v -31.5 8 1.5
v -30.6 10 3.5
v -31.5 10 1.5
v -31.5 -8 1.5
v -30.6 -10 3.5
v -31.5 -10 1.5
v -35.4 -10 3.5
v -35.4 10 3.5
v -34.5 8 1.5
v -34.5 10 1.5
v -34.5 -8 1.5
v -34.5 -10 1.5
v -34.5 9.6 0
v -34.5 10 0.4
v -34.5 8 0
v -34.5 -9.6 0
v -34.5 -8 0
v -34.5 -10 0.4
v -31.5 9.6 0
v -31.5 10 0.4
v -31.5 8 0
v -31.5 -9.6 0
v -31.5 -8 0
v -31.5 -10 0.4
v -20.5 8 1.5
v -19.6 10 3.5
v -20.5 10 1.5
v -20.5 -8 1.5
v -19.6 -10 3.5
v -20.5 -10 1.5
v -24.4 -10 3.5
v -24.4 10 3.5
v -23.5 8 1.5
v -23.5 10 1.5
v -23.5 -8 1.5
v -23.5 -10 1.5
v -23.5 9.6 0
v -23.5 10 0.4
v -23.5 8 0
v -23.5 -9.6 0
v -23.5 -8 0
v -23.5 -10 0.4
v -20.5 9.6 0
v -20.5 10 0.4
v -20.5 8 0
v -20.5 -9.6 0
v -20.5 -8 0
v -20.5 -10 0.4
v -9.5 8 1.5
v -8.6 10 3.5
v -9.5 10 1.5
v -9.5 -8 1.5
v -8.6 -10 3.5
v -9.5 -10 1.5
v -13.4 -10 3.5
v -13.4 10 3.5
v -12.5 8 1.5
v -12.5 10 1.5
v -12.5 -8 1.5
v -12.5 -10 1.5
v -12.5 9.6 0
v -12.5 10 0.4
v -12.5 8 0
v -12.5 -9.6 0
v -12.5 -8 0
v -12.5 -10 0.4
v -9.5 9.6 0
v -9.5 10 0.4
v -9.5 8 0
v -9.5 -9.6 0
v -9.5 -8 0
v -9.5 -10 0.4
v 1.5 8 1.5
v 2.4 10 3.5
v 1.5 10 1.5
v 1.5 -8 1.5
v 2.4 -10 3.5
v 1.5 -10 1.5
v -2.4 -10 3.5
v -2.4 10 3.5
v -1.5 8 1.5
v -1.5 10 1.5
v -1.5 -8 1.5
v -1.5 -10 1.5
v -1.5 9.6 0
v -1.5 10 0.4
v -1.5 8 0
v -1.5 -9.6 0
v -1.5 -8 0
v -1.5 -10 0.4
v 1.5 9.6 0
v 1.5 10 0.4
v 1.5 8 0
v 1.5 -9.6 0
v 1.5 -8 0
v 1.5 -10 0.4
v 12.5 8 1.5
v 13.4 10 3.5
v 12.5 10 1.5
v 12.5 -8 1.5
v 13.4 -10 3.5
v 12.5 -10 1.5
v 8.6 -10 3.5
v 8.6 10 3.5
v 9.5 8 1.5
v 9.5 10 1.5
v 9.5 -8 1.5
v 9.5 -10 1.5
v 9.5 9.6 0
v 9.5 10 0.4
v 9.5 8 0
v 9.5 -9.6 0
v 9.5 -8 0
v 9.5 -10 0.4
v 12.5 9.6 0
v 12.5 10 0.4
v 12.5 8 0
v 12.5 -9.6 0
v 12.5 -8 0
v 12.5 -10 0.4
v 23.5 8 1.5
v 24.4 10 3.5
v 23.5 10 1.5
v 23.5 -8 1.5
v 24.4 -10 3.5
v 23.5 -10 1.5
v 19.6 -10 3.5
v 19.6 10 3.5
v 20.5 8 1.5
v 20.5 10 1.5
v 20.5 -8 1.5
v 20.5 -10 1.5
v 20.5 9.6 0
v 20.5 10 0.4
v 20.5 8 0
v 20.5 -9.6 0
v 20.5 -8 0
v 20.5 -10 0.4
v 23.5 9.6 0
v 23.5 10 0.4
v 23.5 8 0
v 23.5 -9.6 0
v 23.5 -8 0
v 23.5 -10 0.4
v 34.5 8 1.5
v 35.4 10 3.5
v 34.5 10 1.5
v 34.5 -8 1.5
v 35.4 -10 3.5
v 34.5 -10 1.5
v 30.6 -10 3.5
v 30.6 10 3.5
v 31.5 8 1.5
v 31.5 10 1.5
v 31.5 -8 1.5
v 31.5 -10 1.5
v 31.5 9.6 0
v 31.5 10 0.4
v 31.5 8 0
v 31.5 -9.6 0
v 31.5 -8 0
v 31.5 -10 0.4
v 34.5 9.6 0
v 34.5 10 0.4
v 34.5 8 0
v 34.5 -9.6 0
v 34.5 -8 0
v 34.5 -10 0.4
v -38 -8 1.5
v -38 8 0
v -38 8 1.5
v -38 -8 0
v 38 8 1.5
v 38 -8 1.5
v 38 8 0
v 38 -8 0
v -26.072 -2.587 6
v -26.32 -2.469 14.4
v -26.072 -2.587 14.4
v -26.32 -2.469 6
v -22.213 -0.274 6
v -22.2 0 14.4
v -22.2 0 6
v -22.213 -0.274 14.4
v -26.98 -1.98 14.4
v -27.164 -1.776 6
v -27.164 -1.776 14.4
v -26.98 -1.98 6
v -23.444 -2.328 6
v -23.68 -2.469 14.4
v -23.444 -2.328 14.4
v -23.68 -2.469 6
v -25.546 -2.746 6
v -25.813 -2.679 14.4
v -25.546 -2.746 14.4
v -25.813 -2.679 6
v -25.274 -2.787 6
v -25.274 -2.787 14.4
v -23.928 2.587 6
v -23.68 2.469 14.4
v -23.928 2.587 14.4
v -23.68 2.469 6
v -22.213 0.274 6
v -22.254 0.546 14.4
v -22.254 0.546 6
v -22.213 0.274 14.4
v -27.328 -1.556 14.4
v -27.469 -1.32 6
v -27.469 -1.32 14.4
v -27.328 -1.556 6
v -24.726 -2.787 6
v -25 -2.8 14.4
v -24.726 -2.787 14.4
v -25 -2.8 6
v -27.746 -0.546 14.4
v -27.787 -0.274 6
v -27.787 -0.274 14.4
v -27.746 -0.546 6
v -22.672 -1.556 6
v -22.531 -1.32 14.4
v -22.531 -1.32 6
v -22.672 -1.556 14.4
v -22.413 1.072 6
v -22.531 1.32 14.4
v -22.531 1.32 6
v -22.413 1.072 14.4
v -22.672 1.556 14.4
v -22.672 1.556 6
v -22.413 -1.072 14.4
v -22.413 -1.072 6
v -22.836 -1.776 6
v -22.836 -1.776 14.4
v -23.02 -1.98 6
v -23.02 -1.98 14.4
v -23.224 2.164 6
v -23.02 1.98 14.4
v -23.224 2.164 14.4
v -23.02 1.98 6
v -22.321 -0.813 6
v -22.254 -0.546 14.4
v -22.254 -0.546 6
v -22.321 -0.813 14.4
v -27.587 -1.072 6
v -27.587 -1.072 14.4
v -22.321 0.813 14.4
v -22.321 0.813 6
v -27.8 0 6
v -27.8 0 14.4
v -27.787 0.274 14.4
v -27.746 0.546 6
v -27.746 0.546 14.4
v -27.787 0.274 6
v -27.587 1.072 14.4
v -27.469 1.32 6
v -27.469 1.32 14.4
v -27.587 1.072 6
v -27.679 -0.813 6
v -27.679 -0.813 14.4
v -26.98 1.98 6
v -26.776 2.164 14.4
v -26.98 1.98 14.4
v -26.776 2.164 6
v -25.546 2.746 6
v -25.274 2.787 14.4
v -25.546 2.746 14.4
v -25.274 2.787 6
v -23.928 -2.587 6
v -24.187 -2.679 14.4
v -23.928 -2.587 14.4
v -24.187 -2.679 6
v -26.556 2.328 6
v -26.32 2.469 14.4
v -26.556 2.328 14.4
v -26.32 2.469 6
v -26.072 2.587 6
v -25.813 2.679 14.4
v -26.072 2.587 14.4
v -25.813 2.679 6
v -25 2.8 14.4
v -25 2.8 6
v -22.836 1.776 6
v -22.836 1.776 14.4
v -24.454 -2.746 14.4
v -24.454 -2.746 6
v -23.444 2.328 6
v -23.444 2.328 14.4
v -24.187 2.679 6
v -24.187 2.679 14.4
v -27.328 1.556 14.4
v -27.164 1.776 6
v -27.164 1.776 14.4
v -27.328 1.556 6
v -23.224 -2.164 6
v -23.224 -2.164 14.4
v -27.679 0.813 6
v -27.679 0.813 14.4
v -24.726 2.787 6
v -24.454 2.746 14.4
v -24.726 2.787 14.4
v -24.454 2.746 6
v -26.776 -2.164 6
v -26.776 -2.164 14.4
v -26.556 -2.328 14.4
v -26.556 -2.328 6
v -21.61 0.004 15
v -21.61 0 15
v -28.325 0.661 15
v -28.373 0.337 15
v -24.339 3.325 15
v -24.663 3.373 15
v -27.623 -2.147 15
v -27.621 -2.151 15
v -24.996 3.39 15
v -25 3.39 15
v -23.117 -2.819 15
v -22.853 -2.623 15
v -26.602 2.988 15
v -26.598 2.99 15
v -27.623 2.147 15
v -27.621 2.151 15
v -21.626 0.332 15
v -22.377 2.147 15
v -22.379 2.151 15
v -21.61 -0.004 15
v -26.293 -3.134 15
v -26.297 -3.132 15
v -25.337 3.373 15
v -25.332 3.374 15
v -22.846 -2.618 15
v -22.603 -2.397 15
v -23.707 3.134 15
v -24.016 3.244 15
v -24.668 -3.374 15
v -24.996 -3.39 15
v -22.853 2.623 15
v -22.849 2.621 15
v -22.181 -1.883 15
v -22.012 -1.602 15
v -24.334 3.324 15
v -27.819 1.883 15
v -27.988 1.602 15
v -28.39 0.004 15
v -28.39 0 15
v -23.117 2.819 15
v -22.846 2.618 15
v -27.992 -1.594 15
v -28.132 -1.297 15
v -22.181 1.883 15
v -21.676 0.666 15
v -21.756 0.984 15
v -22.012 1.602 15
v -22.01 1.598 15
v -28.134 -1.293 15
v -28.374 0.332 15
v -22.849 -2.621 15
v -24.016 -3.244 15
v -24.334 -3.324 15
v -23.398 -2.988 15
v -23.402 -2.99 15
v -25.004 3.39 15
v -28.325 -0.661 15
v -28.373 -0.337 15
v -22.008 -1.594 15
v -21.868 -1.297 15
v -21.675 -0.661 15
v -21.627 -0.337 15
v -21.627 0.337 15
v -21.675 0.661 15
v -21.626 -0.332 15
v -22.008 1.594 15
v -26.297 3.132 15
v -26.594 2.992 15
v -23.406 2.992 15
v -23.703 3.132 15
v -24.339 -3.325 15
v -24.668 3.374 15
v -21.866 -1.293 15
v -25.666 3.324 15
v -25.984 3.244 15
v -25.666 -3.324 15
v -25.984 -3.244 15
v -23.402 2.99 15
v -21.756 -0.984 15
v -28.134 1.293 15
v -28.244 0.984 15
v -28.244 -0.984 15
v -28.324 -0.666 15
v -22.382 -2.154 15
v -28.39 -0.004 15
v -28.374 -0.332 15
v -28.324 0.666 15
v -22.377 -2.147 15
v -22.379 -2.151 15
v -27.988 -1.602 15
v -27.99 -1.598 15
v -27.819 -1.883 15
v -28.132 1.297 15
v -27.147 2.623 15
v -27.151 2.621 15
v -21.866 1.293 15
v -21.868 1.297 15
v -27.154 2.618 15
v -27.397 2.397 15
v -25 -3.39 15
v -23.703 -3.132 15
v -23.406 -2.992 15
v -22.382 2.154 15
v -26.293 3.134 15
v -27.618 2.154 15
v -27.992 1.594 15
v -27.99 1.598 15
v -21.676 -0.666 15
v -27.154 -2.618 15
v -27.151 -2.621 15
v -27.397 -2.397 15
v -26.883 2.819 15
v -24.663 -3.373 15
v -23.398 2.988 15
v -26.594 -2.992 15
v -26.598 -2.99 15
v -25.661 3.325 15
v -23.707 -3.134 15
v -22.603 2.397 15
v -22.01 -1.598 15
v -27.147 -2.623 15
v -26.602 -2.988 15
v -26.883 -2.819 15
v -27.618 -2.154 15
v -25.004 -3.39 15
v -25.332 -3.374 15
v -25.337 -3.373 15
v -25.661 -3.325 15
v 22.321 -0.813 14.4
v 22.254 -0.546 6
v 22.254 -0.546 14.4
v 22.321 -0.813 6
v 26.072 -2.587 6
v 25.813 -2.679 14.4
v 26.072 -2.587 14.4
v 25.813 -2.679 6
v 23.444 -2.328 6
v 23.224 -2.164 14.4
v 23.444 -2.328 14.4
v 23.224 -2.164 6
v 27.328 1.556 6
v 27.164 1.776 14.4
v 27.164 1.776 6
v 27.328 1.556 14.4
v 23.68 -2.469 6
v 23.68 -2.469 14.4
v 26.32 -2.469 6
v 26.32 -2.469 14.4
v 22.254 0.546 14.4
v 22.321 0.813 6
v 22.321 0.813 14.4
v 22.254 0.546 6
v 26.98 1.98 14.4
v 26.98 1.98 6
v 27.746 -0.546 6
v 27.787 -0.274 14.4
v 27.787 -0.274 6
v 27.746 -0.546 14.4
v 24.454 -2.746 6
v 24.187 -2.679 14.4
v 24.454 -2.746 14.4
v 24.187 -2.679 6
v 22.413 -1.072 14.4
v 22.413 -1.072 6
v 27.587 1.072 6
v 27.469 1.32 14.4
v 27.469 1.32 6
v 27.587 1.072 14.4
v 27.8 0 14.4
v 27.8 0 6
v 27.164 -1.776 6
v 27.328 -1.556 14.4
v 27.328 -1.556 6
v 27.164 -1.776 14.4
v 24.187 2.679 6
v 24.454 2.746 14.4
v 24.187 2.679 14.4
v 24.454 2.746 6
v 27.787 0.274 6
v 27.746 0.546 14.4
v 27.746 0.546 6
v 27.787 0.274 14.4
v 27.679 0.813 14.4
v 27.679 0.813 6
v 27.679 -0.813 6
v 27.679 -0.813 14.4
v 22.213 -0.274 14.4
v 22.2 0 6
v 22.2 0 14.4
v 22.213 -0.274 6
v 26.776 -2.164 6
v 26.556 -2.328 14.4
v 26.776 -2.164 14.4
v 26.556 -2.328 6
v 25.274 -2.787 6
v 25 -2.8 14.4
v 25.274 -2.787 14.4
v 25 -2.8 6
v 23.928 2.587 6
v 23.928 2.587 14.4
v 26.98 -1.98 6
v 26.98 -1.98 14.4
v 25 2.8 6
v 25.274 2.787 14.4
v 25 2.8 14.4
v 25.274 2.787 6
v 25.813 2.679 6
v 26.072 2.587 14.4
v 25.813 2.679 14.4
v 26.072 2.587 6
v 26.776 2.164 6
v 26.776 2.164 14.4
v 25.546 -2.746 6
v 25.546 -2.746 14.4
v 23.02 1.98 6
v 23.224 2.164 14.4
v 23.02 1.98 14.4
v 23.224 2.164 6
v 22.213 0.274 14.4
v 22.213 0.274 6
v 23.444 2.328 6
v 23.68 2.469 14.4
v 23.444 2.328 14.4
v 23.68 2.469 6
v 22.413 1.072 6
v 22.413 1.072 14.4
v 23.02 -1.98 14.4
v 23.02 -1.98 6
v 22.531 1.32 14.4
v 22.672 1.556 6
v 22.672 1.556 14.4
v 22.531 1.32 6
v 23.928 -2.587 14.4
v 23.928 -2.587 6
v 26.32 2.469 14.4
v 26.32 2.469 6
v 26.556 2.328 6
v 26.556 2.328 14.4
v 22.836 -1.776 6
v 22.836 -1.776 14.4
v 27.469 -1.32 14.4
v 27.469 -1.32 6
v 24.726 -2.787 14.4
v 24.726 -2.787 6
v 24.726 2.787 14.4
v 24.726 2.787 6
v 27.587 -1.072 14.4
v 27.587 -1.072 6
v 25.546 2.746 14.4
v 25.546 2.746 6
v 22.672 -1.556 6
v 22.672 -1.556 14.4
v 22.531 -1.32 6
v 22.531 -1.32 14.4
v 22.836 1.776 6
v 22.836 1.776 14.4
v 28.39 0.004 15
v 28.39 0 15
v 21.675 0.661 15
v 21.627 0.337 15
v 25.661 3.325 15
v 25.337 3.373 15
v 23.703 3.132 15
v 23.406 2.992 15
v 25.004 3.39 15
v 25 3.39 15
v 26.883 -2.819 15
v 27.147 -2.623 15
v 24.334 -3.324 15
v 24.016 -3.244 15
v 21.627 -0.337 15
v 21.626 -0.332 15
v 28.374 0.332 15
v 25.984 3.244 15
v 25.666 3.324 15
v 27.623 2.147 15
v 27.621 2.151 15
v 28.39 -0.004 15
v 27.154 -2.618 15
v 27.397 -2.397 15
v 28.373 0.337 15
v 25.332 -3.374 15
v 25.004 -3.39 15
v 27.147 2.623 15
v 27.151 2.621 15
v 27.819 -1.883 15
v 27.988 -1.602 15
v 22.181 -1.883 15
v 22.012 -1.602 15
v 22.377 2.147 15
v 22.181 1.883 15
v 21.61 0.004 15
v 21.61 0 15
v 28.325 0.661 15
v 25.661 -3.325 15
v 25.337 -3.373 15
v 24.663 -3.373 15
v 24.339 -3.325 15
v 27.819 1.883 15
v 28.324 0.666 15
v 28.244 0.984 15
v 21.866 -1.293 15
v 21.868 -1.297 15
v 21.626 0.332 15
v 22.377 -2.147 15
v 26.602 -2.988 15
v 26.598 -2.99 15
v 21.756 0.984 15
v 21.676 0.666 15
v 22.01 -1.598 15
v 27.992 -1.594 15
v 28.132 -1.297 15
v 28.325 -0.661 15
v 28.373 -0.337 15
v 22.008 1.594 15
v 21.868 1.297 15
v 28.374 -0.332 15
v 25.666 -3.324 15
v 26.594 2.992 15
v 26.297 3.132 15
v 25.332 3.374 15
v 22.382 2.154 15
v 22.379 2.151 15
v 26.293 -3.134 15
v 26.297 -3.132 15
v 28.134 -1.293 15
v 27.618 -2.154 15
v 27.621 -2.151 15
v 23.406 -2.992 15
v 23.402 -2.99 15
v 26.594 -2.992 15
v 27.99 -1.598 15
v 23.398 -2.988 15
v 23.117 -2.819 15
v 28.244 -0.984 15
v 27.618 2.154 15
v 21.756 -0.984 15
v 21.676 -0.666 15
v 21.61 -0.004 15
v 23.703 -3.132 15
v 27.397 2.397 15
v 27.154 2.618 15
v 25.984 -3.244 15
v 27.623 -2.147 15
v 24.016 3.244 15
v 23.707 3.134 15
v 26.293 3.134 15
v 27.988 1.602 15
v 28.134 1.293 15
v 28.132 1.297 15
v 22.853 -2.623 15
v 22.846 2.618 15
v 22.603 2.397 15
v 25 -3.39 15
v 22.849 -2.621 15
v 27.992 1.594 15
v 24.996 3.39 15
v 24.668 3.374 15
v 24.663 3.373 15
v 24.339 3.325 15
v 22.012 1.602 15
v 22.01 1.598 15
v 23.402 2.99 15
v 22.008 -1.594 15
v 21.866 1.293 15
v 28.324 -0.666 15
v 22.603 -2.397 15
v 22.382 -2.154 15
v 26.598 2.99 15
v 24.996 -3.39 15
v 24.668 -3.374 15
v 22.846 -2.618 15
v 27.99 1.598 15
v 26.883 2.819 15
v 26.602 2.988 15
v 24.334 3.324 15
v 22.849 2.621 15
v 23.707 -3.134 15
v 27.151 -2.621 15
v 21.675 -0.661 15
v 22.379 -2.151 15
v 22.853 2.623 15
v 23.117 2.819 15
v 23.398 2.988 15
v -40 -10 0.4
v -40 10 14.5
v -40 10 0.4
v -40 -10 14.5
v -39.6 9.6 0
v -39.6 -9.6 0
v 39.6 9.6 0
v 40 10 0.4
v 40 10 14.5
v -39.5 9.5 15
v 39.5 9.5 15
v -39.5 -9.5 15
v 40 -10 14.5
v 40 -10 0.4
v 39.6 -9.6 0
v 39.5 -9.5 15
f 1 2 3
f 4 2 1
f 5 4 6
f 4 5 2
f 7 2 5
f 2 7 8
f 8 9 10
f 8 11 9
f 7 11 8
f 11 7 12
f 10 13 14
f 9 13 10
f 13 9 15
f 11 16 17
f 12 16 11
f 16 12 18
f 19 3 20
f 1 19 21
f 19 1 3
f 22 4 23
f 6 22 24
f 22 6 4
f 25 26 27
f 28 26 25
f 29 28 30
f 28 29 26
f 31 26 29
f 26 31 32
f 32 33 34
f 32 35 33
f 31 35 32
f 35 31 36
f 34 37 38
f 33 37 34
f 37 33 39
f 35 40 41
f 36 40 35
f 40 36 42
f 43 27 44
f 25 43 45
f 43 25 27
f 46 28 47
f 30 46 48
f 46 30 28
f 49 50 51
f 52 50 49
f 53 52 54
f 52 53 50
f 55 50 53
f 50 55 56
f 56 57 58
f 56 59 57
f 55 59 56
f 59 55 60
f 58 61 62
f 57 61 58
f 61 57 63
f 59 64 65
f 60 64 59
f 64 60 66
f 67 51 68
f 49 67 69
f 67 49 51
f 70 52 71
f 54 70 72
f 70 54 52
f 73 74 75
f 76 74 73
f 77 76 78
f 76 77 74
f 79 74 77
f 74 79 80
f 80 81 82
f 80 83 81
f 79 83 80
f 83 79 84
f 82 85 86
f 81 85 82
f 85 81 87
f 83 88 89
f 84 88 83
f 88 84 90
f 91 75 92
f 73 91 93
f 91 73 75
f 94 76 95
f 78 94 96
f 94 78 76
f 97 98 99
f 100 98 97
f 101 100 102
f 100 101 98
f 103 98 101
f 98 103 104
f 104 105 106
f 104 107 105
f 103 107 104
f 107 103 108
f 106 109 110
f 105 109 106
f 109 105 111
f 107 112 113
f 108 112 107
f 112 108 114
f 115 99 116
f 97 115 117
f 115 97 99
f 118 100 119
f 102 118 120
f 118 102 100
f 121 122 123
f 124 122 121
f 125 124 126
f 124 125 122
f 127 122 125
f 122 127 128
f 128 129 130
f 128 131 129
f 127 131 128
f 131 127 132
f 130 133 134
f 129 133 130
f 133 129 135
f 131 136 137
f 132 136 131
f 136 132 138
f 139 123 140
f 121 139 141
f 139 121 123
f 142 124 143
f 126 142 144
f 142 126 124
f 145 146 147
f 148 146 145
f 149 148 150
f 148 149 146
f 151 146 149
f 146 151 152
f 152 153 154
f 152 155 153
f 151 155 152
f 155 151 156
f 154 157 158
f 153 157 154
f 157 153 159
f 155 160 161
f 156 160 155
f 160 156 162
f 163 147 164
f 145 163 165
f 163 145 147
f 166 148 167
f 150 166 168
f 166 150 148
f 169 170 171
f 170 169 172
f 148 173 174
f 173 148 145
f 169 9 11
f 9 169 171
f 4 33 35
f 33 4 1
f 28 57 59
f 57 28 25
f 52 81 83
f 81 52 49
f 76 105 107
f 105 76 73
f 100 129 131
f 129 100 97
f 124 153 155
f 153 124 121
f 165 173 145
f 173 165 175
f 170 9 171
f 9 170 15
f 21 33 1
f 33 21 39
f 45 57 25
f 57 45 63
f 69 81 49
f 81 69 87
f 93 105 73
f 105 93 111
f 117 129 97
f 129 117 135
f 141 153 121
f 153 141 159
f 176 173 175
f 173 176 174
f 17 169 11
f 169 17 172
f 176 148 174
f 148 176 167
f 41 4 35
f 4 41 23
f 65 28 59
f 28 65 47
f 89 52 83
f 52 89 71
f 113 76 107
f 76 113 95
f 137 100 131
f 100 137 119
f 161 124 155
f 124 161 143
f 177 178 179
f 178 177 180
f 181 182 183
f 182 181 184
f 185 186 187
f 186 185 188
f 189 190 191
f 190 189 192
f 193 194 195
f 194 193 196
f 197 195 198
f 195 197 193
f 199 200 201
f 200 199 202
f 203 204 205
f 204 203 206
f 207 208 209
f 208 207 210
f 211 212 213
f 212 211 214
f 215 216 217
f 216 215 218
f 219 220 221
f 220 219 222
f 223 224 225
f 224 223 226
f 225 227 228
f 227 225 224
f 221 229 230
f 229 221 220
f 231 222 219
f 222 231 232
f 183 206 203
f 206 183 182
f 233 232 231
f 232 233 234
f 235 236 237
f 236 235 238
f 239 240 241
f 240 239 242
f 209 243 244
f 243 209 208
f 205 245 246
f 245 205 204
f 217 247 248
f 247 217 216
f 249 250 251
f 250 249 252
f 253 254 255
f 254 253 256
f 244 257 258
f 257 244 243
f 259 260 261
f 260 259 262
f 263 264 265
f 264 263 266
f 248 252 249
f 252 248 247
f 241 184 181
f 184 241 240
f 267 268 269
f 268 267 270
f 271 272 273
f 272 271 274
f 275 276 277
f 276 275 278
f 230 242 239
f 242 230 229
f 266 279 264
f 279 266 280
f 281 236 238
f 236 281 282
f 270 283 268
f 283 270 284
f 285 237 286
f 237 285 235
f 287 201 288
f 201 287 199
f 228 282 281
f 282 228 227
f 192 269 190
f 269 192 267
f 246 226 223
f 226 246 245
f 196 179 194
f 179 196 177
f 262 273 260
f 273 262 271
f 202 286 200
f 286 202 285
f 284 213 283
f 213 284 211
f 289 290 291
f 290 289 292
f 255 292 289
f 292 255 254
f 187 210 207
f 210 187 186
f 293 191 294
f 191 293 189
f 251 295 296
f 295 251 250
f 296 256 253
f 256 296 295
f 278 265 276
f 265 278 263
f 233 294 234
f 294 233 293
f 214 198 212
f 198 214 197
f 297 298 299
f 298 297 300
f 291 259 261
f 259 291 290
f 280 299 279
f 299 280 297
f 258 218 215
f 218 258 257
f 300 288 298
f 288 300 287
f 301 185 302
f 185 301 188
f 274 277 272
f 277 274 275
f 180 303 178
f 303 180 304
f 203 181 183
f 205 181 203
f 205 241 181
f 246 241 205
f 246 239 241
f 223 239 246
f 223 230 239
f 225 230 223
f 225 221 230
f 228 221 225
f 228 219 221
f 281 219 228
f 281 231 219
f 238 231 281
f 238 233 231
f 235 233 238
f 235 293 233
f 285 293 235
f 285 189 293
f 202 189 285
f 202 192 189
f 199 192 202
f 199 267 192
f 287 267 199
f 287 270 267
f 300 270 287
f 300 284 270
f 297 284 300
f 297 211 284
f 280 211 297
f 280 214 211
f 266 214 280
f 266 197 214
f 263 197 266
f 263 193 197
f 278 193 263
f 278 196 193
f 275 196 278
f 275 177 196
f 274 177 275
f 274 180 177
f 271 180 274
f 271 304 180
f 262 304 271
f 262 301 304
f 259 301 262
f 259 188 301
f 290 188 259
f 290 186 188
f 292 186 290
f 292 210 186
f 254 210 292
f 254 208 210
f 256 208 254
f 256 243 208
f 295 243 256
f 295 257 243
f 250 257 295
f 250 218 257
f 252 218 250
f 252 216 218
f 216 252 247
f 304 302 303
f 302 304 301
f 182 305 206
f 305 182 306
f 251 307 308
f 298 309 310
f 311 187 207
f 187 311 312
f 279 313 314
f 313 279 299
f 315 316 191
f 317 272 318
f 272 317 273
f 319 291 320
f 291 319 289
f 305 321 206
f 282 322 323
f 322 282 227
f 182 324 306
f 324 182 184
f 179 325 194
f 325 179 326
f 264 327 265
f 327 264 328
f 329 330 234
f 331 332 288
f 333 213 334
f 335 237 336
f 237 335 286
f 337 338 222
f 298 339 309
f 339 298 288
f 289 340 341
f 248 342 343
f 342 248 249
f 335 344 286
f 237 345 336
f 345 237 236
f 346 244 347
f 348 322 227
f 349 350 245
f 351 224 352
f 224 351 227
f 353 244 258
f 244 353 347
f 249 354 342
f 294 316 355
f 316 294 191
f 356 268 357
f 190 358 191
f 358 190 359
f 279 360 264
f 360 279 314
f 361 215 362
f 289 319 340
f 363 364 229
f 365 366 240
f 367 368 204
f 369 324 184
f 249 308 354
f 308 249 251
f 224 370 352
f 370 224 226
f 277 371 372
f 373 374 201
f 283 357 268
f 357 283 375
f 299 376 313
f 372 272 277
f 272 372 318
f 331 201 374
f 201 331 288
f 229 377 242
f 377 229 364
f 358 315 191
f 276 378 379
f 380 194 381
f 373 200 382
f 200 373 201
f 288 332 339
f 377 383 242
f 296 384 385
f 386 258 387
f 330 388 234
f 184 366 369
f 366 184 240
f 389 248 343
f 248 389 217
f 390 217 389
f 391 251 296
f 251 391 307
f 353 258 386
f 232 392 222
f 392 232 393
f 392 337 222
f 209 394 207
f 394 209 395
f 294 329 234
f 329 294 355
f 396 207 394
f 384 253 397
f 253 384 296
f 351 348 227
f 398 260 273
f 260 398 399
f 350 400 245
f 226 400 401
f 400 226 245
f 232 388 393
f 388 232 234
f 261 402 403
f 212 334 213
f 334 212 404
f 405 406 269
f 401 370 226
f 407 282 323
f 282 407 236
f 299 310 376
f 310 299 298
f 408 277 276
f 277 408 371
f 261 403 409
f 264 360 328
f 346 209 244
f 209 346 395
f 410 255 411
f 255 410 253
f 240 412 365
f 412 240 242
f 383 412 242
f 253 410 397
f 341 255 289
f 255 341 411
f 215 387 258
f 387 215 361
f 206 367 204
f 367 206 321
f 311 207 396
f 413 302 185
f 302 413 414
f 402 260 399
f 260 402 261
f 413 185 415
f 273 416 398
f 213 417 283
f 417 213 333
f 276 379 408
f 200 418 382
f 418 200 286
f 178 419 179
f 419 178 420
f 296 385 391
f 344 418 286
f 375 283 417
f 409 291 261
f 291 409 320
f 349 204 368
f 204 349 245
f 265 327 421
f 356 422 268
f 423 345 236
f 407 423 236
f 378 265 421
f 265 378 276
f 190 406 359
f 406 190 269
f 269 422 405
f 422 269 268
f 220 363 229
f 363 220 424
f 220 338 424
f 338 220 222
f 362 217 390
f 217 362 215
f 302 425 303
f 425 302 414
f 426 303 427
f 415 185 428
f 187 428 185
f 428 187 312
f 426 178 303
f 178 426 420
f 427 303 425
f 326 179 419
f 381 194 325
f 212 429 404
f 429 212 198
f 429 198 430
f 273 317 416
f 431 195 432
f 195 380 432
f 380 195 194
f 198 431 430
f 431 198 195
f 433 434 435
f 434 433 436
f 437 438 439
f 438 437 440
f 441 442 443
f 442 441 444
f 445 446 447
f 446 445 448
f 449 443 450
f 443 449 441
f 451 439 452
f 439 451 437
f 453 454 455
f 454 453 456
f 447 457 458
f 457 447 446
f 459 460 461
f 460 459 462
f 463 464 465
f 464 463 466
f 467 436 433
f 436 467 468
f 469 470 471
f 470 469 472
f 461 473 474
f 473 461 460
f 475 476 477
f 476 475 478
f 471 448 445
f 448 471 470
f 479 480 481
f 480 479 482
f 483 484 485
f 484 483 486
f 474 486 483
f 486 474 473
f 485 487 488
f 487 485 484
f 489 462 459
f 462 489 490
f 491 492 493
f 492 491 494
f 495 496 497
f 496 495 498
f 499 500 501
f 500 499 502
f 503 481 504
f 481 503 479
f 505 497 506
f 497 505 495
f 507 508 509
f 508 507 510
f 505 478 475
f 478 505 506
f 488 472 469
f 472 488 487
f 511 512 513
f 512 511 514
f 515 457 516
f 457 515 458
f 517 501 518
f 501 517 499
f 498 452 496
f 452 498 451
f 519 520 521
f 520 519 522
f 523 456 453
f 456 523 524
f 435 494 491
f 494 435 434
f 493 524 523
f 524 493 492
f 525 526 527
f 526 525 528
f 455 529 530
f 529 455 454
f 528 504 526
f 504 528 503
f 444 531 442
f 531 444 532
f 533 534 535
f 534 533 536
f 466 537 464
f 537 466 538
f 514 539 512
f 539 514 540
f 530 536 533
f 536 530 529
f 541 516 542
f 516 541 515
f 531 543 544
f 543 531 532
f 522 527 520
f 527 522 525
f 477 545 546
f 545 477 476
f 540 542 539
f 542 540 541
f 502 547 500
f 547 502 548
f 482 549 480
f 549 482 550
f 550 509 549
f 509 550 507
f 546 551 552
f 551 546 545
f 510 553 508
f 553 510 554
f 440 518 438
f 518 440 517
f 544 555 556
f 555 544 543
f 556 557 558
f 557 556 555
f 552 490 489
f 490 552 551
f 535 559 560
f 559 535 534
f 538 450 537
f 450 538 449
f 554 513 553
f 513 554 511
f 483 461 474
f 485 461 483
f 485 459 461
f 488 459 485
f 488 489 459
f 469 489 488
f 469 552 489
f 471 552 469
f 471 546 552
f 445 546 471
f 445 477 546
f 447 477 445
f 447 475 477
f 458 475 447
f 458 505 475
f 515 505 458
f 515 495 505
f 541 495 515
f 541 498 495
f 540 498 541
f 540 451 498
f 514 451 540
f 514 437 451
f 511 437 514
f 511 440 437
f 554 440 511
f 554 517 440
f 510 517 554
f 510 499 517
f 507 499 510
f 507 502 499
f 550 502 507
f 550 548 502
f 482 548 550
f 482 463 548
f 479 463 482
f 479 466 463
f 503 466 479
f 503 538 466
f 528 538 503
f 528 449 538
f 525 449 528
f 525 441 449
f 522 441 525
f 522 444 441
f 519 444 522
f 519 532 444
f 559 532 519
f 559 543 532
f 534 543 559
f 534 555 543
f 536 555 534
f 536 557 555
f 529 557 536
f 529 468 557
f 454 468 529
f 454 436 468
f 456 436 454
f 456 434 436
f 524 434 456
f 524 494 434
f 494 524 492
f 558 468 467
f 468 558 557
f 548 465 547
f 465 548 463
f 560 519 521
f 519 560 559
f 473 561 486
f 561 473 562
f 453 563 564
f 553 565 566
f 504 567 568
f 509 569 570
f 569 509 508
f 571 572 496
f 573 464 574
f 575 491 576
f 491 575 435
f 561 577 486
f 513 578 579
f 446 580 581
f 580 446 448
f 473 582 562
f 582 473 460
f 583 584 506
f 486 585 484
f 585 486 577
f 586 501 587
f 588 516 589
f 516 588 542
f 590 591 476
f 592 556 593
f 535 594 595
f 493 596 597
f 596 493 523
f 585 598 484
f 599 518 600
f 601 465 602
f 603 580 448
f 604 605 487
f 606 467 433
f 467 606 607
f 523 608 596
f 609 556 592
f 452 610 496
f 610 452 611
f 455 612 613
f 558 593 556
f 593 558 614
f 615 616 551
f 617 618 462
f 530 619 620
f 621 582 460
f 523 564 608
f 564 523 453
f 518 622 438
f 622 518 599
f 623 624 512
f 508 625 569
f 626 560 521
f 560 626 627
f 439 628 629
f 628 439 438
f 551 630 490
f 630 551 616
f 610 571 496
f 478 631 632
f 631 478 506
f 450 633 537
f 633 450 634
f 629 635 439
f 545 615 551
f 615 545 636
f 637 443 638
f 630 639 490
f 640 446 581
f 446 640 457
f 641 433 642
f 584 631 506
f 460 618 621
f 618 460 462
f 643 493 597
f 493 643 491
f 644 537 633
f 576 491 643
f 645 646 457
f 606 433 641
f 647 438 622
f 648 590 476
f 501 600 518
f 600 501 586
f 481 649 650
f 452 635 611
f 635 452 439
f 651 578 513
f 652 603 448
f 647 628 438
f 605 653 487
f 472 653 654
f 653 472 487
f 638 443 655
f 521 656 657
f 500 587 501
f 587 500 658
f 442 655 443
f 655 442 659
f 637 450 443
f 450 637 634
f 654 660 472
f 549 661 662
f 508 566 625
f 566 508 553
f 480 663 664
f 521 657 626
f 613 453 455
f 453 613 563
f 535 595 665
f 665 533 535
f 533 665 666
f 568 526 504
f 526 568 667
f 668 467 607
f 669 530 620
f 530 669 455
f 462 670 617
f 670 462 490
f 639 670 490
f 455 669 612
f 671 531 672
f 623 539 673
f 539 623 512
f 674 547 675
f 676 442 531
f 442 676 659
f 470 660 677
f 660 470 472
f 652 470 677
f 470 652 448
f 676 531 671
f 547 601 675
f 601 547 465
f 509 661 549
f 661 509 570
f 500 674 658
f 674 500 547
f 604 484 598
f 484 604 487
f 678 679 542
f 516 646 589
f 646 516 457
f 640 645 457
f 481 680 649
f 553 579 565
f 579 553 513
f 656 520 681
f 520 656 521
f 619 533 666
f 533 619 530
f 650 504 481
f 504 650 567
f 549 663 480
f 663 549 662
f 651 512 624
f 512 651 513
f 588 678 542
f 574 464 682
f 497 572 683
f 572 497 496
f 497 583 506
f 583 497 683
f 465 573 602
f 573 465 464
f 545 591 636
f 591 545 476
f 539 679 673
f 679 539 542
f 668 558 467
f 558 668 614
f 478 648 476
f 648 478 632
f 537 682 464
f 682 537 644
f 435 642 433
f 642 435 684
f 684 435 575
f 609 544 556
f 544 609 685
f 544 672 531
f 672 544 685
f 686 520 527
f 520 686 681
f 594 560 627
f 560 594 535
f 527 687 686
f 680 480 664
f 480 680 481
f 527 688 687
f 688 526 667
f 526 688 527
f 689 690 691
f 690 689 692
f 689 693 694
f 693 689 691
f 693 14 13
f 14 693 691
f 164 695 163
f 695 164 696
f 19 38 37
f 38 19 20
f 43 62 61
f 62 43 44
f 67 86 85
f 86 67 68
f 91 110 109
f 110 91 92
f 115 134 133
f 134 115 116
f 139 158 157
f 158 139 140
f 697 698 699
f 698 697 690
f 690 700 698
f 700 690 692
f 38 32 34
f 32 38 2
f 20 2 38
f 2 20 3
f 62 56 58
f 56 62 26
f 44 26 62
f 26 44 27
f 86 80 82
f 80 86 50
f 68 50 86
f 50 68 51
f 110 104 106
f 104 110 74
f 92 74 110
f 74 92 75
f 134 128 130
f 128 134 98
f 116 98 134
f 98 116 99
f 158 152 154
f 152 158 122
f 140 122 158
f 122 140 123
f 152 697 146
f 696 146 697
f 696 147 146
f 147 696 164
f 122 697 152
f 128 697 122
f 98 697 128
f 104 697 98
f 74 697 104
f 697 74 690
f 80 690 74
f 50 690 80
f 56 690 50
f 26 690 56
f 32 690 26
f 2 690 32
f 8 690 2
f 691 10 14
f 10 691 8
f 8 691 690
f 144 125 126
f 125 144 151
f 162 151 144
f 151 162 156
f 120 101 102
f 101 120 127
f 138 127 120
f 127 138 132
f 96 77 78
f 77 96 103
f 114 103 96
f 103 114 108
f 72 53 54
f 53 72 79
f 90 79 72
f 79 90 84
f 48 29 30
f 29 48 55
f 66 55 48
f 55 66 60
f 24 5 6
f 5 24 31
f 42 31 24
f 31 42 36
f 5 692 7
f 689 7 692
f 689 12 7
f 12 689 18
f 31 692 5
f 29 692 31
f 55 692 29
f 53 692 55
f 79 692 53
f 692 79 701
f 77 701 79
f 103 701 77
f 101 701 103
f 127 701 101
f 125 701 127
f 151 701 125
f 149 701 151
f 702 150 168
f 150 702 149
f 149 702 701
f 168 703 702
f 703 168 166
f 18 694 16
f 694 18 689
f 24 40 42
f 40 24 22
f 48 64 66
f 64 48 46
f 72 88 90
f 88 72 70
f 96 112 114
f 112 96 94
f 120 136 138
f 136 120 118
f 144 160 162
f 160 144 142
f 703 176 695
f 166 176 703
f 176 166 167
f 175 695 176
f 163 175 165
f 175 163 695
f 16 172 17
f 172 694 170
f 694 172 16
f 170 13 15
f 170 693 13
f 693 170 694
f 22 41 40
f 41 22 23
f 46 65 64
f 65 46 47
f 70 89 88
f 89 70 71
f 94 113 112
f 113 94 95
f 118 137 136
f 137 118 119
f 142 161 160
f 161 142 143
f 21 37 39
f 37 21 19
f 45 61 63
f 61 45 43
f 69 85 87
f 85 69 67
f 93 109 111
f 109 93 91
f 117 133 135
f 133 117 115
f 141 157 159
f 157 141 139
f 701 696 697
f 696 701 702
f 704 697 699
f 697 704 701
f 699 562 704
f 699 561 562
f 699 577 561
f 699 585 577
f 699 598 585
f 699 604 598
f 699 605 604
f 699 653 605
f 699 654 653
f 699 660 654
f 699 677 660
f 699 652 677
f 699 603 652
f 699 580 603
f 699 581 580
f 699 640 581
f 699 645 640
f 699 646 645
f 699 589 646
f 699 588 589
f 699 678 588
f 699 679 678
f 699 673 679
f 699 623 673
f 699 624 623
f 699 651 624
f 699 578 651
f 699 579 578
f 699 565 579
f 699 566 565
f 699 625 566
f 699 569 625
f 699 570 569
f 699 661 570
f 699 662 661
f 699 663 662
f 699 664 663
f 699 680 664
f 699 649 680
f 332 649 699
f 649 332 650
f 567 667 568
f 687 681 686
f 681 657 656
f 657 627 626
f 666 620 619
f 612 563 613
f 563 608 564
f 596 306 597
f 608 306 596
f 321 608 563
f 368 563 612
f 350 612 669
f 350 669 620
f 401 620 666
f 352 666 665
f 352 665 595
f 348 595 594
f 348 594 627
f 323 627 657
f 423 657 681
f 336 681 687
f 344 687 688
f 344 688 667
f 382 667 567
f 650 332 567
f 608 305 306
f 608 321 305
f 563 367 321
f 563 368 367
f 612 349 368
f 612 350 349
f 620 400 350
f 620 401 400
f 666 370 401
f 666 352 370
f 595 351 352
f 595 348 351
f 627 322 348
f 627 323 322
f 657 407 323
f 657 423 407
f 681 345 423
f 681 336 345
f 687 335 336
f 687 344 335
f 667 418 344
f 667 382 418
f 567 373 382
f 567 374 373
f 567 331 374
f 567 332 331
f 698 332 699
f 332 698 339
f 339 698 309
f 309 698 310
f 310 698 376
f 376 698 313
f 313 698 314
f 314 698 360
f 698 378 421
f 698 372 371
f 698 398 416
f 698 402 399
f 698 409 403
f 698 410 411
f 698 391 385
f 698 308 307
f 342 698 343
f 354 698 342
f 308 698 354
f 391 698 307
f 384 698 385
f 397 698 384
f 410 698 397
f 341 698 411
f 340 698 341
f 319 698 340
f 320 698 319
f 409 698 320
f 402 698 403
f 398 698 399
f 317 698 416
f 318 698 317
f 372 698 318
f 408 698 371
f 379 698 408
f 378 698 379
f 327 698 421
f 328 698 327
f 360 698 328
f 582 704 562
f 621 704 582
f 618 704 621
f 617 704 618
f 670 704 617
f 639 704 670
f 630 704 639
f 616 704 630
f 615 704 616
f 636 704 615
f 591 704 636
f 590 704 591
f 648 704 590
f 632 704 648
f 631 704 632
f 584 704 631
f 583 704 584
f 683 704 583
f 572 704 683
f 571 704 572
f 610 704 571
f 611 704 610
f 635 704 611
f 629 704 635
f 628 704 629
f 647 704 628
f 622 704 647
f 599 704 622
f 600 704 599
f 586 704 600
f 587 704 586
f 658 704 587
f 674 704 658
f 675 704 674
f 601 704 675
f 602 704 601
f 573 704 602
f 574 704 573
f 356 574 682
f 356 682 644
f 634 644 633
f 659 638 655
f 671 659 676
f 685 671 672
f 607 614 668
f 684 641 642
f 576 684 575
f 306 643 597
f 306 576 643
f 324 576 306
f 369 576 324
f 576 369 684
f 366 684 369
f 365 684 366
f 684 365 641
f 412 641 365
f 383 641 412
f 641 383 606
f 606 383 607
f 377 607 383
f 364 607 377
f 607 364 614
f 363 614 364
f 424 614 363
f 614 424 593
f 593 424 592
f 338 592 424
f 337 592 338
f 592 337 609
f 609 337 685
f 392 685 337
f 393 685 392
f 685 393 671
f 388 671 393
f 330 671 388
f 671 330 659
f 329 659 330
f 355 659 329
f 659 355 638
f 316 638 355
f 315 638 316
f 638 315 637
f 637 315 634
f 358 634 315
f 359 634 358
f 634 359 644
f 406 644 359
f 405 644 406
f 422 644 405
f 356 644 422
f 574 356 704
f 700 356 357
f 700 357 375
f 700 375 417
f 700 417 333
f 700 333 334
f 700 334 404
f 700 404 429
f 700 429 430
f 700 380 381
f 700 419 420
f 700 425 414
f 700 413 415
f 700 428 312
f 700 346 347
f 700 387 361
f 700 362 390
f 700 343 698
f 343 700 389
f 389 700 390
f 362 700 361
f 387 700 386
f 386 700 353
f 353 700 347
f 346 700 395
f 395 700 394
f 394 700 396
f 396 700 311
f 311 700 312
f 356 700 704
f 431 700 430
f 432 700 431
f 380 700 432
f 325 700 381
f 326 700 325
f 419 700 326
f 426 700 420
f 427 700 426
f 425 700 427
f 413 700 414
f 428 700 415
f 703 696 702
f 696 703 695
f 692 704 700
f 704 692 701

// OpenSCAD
// =====================================================================
//  PU Rail — trilho espacador 80 x 20 x 15, colado com PU
//
//  Fica ENTRE a caixa hermetica e uma chapa de aluminio:
//    face de baixo (z=0) -> colada na caixa com PU, leito de 1,5 mm
//    face de cima        -> parafusada na chapa, M4 em insert de latao
//
//  O principio que manda no desenho: NADA da fixacao pode aparecer na
//  face de cola. O furo do insert e' CEGO, entra pelo topo e para 4,5 mm
//  acima do piso do leito — a face de cola sai inteira e plana.
//
//  E' tambem por isso que aqui nao cabe rebite, que seria o obvio para
//  chapa de aluminio: rebite de repuxo tem que formar o bulbo do OUTRO
//  lado da pilha, e o outro lado e' a junta colada. Fora que ele aperta a
//  pilha inteira, e a pilha inclui 15 mm de plastico que flui no calor.
//
//  Diferente do capuz do SMA, esta junta NAO veda nada — a caixa ja' e'
//  hermetica e o trilho e' colado por fora. Por isso a borda pode ser
//  cortada pelos canais: aqui interessa so' ancoragem, nao vedacao.
//
//  A peca fica apoiada em z=0 pela face de cola, que e' tambem a posicao
//  de impressao.
//
//    openscad -o pu_rail.stl                   pu_rail.scad
//    openscad -o insert_coupon.stl -D coupon=true pu_rail.scad
// =====================================================================

// ---------------- corpo ----------------
rail_l      = 80.0;   // so' o comprimento foi imposto (cabe em 80)
rail_w      = 20.0;
rail_h      = 15.0;   // e' o VAO entre a caixa e a chapa: mexa aqui se
                      // precisar de outro afastamento
cham_b      = 0.40;   // chanfro na aresta inferior externa. So' 0,4: com 2 mm
                      // de borda, um chanfro maior comeria 30% da area de
                      // assentamento. Mata o pe de elefante e vira
                      // reservatorio do cordao de PU externo
cham_t      = 0.50;   // chanfro no topo, so' para tirar a aresta viva

// ---------------- fixacao: insert de latao M4 ----------------
// Insert medido no paquimetro: OD 6,00 (modelo "M4 8*6").
//
// O furo NAO vai nos 6,00. Esse e' o diametro MAIOR, sobre as cristas do
// serrilhado; o furo tem que ficar entre a crista e o fundo do serrilhado,
// para o plastico derretido ter para onde ir e o serrilhado morder. Para um
// OD de 6,0 isso cai em 5,5 a 5,7 conforme o fabricante — uso 5,60.
//
// Esta e' a cota que mais varia entre marcas neste arquivo: imprima o cupom
// (coupon=true) antes de imprimir os trilhos. Furo apertado demais nao deixa
// o insert afundar e estufa a parede; largo demais nao tem material para
// preencher o serrilhado e o insert gira quando voce aperta o parafuso.
fix_x       = [-25, 25];   // 50 mm entre eles, 15 mm sobrando em cada ponta
ins_d       = 5.60;
ins_h       = 8.00;   // dos quatro comprimentos comuns (4/5/6/8 x 6), o de 8.
                      // Nao e' por carga: ate' o de 4 mm tem ~400x de margem
                      // sobre a tracao de vento. E' por resistir a GIRAR no
                      // aperto, que e' o modo de falha real do insert termico
ins_relief  = 1.00;   // alivio abaixo: recebe o material deslocado no
                      // assentamento e perdoa a ponta do parafuso
ins_cham    = 0.60;   // chanfro de entrada, para o insert descer no eixo

// ---------------- face de cola ----------------
border      = 2.00;   // borda macica em volta: e' ela que CALIBRA a linha de
                      // cola. O trilho assenta nela e o PU fica com 1,5 mm
                      // parelho, que e' a espessura que adesivo de PU quer —
                      // ele e' preenchedor, e essa folga absorve a diferenca
                      // de dilatacao entre o trilho e a caixa
bed_d       = 1.50;

// ---------------- canais de ancoragem ----------------
// RABO DE ANDORINHA, e nao ranhura reta. O ponto: uma ranhura com a mesma
// profundidade do leito e' coplanar com ele — nao ancora nada, so' fura a
// borda. Estes canais descem MAIS 2 mm abaixo do piso do leito e alargam
// enquanto descem, de 3,0 na boca para 4,8 no fundo. O PU curado dentro vira
// um rebite que nao sai puxando reto: para escapar teria que se espremer de
// 4,8 para 3,0.
//
// O alargamento e' de 24 graus com a vertical (66 com a horizontal), bem
// dentro do auto-suportado — imprime sem suporte, de cabeca para baixo.
//
// Eles atravessam ate' as duas laterais de proposito, por tres motivos: a
// borda precisa ser furada para o excesso sair, o ar preso dentro do canal
// precisa de saida (senao vira bolha, e bolha e' onde a junta comeca a
// descolar), e da' para conferir pelo lado de fora se o PU encheu.
chan_mouth  = 3.00;
chan_root   = 4.80;
chan_z      = 2.00;   // quanto desce ALEM do piso do leito
chan_x      = [-33, -22, -11, 0, 11, 22, 33];
// Os de +-33 sao os que mais importam: descolamento de junta longa comeca
// sempre pelas pontas, e ali eles ficam a 5 mm da borda do leito.

// ---------------- cupom de teste do furo ----------------
coupon      = false;
cup_d       = [5.40, 5.50, 5.60, 5.70, 5.80];
cup_pitch   = 12.0;

$fn = 64;

// =====================================================================

bed_l    = rail_l - 2*border;
bed_w    = rail_w - 2*border;
ins_bore = ins_h + ins_relief;
under    = rail_h - bed_d - ins_bore;          // macico sob o furo do insert
web      = rail_h - ins_bore - bed_d - chan_z; // entre o furo e o fundo do canal

echo(str("trilho ",rail_l," x ",rail_w," x ",rail_h," mm"));
echo(str("leito ",bed_l," x ",bed_w," x ",bed_d));
echo(str("furo do insert Dia ",ins_d," x ",ins_bore," CEGO -> ",under," mm de fundo macico"));
echo(str("canais: ",len(chan_x)," de ",chan_mouth,"->",chan_root," descendo ",chan_z,
         " abaixo do leito (fundo a ",bed_d+chan_z," da face de cola)"));
echo(str("material entre o furo do insert e o fundo do canal: ",web," mm"));
echo(str("parafuso M4 x 10 (chapa 1,5 + arruela 1,0 + ",ins_h-2.5," de rosca)"));
echo(str("NUNCA passe de M4 x ",1.5+ins_bore," — o parafuso encosta no fundo e",
         " empurra o insert por baixo"));

// caixa com chanfro embaixo e no topo
module body(){
    hull(){
        linear_extrude(0.01) square([rail_l-2*cham_b, rail_w-2*cham_b], center=true);
        translate([0,0,cham_b])
            linear_extrude(rail_h-cham_b-cham_t) square([rail_l, rail_w], center=true);
        translate([0,0,rail_h-0.01])
            linear_extrude(0.01) square([rail_l-2*cham_t, rail_w-2*cham_t], center=true);
    }
}

// leito do PU + canais rabo de andorinha, na face de baixo
module bed_cuts(){
    translate([0,0,-0.01])
        linear_extrude(bed_d+0.01) square([bed_l, bed_w], center=true);
    for(x = chan_x) translate([x,0,0]) rotate([90,0,0])
        translate([0,0,-(rail_w+2)/2]) linear_extrude(rail_w+2)
            polygon([[-chan_mouth/2, -0.01],
                     [ chan_mouth/2, -0.01],
                     [ chan_mouth/2,  bed_d],
                     [ chan_root/2,   bed_d+chan_z],
                     [-chan_root/2,   bed_d+chan_z],
                     [-chan_mouth/2,  bed_d]]);
}

// furo cego do insert, pelo topo
module insert_cuts(){
    for(x = fix_x) translate([x,0,rail_h]){
        translate([0,0,-ins_bore]) cylinder(h=ins_bore+0.01, d=ins_d);
        translate([0,0,-ins_cham]) cylinder(h=ins_cham+0.01, d1=ins_d, d2=ins_d+2*ins_cham);
    }
}

module rail(){
    difference(){
        body();
        bed_cuts();
        insert_cuts();
    }
}

// Barrinha com um furo de cada diametro, para escolher o do seu insert.
// Cada furo leva de 1 a 5 tracinhos ao lado; o de 1 traco e' o menor.
module insert_coupon(){
    n = len(cup_d);
    c_l = n*cup_pitch; c_w = 16; c_h = ins_bore + 3;
    difference(){
        translate([-c_l/2, -c_w/2, 0]) cube([c_l, c_w, c_h]);
        for(i = [0:n-1])
            translate([-c_l/2 + cup_pitch*(i+0.5), 2.0, c_h]){
                translate([0,0,-ins_bore]) cylinder(h=ins_bore+0.01, d=cup_d[i]);
                translate([0,0,-ins_cham])
                    cylinder(h=ins_cham+0.01, d1=cup_d[i], d2=cup_d[i]+2*ins_cham);
            }
        for(i = [0:n-1], k = [0:i])
            translate([-c_l/2 + cup_pitch*(i+0.5) - 2.5 + k*1.2, -6.0, c_h-0.6])
                cube([0.6, 3.0, 0.61]);
    }
}

if(coupon) insert_coupon(); else rail();
